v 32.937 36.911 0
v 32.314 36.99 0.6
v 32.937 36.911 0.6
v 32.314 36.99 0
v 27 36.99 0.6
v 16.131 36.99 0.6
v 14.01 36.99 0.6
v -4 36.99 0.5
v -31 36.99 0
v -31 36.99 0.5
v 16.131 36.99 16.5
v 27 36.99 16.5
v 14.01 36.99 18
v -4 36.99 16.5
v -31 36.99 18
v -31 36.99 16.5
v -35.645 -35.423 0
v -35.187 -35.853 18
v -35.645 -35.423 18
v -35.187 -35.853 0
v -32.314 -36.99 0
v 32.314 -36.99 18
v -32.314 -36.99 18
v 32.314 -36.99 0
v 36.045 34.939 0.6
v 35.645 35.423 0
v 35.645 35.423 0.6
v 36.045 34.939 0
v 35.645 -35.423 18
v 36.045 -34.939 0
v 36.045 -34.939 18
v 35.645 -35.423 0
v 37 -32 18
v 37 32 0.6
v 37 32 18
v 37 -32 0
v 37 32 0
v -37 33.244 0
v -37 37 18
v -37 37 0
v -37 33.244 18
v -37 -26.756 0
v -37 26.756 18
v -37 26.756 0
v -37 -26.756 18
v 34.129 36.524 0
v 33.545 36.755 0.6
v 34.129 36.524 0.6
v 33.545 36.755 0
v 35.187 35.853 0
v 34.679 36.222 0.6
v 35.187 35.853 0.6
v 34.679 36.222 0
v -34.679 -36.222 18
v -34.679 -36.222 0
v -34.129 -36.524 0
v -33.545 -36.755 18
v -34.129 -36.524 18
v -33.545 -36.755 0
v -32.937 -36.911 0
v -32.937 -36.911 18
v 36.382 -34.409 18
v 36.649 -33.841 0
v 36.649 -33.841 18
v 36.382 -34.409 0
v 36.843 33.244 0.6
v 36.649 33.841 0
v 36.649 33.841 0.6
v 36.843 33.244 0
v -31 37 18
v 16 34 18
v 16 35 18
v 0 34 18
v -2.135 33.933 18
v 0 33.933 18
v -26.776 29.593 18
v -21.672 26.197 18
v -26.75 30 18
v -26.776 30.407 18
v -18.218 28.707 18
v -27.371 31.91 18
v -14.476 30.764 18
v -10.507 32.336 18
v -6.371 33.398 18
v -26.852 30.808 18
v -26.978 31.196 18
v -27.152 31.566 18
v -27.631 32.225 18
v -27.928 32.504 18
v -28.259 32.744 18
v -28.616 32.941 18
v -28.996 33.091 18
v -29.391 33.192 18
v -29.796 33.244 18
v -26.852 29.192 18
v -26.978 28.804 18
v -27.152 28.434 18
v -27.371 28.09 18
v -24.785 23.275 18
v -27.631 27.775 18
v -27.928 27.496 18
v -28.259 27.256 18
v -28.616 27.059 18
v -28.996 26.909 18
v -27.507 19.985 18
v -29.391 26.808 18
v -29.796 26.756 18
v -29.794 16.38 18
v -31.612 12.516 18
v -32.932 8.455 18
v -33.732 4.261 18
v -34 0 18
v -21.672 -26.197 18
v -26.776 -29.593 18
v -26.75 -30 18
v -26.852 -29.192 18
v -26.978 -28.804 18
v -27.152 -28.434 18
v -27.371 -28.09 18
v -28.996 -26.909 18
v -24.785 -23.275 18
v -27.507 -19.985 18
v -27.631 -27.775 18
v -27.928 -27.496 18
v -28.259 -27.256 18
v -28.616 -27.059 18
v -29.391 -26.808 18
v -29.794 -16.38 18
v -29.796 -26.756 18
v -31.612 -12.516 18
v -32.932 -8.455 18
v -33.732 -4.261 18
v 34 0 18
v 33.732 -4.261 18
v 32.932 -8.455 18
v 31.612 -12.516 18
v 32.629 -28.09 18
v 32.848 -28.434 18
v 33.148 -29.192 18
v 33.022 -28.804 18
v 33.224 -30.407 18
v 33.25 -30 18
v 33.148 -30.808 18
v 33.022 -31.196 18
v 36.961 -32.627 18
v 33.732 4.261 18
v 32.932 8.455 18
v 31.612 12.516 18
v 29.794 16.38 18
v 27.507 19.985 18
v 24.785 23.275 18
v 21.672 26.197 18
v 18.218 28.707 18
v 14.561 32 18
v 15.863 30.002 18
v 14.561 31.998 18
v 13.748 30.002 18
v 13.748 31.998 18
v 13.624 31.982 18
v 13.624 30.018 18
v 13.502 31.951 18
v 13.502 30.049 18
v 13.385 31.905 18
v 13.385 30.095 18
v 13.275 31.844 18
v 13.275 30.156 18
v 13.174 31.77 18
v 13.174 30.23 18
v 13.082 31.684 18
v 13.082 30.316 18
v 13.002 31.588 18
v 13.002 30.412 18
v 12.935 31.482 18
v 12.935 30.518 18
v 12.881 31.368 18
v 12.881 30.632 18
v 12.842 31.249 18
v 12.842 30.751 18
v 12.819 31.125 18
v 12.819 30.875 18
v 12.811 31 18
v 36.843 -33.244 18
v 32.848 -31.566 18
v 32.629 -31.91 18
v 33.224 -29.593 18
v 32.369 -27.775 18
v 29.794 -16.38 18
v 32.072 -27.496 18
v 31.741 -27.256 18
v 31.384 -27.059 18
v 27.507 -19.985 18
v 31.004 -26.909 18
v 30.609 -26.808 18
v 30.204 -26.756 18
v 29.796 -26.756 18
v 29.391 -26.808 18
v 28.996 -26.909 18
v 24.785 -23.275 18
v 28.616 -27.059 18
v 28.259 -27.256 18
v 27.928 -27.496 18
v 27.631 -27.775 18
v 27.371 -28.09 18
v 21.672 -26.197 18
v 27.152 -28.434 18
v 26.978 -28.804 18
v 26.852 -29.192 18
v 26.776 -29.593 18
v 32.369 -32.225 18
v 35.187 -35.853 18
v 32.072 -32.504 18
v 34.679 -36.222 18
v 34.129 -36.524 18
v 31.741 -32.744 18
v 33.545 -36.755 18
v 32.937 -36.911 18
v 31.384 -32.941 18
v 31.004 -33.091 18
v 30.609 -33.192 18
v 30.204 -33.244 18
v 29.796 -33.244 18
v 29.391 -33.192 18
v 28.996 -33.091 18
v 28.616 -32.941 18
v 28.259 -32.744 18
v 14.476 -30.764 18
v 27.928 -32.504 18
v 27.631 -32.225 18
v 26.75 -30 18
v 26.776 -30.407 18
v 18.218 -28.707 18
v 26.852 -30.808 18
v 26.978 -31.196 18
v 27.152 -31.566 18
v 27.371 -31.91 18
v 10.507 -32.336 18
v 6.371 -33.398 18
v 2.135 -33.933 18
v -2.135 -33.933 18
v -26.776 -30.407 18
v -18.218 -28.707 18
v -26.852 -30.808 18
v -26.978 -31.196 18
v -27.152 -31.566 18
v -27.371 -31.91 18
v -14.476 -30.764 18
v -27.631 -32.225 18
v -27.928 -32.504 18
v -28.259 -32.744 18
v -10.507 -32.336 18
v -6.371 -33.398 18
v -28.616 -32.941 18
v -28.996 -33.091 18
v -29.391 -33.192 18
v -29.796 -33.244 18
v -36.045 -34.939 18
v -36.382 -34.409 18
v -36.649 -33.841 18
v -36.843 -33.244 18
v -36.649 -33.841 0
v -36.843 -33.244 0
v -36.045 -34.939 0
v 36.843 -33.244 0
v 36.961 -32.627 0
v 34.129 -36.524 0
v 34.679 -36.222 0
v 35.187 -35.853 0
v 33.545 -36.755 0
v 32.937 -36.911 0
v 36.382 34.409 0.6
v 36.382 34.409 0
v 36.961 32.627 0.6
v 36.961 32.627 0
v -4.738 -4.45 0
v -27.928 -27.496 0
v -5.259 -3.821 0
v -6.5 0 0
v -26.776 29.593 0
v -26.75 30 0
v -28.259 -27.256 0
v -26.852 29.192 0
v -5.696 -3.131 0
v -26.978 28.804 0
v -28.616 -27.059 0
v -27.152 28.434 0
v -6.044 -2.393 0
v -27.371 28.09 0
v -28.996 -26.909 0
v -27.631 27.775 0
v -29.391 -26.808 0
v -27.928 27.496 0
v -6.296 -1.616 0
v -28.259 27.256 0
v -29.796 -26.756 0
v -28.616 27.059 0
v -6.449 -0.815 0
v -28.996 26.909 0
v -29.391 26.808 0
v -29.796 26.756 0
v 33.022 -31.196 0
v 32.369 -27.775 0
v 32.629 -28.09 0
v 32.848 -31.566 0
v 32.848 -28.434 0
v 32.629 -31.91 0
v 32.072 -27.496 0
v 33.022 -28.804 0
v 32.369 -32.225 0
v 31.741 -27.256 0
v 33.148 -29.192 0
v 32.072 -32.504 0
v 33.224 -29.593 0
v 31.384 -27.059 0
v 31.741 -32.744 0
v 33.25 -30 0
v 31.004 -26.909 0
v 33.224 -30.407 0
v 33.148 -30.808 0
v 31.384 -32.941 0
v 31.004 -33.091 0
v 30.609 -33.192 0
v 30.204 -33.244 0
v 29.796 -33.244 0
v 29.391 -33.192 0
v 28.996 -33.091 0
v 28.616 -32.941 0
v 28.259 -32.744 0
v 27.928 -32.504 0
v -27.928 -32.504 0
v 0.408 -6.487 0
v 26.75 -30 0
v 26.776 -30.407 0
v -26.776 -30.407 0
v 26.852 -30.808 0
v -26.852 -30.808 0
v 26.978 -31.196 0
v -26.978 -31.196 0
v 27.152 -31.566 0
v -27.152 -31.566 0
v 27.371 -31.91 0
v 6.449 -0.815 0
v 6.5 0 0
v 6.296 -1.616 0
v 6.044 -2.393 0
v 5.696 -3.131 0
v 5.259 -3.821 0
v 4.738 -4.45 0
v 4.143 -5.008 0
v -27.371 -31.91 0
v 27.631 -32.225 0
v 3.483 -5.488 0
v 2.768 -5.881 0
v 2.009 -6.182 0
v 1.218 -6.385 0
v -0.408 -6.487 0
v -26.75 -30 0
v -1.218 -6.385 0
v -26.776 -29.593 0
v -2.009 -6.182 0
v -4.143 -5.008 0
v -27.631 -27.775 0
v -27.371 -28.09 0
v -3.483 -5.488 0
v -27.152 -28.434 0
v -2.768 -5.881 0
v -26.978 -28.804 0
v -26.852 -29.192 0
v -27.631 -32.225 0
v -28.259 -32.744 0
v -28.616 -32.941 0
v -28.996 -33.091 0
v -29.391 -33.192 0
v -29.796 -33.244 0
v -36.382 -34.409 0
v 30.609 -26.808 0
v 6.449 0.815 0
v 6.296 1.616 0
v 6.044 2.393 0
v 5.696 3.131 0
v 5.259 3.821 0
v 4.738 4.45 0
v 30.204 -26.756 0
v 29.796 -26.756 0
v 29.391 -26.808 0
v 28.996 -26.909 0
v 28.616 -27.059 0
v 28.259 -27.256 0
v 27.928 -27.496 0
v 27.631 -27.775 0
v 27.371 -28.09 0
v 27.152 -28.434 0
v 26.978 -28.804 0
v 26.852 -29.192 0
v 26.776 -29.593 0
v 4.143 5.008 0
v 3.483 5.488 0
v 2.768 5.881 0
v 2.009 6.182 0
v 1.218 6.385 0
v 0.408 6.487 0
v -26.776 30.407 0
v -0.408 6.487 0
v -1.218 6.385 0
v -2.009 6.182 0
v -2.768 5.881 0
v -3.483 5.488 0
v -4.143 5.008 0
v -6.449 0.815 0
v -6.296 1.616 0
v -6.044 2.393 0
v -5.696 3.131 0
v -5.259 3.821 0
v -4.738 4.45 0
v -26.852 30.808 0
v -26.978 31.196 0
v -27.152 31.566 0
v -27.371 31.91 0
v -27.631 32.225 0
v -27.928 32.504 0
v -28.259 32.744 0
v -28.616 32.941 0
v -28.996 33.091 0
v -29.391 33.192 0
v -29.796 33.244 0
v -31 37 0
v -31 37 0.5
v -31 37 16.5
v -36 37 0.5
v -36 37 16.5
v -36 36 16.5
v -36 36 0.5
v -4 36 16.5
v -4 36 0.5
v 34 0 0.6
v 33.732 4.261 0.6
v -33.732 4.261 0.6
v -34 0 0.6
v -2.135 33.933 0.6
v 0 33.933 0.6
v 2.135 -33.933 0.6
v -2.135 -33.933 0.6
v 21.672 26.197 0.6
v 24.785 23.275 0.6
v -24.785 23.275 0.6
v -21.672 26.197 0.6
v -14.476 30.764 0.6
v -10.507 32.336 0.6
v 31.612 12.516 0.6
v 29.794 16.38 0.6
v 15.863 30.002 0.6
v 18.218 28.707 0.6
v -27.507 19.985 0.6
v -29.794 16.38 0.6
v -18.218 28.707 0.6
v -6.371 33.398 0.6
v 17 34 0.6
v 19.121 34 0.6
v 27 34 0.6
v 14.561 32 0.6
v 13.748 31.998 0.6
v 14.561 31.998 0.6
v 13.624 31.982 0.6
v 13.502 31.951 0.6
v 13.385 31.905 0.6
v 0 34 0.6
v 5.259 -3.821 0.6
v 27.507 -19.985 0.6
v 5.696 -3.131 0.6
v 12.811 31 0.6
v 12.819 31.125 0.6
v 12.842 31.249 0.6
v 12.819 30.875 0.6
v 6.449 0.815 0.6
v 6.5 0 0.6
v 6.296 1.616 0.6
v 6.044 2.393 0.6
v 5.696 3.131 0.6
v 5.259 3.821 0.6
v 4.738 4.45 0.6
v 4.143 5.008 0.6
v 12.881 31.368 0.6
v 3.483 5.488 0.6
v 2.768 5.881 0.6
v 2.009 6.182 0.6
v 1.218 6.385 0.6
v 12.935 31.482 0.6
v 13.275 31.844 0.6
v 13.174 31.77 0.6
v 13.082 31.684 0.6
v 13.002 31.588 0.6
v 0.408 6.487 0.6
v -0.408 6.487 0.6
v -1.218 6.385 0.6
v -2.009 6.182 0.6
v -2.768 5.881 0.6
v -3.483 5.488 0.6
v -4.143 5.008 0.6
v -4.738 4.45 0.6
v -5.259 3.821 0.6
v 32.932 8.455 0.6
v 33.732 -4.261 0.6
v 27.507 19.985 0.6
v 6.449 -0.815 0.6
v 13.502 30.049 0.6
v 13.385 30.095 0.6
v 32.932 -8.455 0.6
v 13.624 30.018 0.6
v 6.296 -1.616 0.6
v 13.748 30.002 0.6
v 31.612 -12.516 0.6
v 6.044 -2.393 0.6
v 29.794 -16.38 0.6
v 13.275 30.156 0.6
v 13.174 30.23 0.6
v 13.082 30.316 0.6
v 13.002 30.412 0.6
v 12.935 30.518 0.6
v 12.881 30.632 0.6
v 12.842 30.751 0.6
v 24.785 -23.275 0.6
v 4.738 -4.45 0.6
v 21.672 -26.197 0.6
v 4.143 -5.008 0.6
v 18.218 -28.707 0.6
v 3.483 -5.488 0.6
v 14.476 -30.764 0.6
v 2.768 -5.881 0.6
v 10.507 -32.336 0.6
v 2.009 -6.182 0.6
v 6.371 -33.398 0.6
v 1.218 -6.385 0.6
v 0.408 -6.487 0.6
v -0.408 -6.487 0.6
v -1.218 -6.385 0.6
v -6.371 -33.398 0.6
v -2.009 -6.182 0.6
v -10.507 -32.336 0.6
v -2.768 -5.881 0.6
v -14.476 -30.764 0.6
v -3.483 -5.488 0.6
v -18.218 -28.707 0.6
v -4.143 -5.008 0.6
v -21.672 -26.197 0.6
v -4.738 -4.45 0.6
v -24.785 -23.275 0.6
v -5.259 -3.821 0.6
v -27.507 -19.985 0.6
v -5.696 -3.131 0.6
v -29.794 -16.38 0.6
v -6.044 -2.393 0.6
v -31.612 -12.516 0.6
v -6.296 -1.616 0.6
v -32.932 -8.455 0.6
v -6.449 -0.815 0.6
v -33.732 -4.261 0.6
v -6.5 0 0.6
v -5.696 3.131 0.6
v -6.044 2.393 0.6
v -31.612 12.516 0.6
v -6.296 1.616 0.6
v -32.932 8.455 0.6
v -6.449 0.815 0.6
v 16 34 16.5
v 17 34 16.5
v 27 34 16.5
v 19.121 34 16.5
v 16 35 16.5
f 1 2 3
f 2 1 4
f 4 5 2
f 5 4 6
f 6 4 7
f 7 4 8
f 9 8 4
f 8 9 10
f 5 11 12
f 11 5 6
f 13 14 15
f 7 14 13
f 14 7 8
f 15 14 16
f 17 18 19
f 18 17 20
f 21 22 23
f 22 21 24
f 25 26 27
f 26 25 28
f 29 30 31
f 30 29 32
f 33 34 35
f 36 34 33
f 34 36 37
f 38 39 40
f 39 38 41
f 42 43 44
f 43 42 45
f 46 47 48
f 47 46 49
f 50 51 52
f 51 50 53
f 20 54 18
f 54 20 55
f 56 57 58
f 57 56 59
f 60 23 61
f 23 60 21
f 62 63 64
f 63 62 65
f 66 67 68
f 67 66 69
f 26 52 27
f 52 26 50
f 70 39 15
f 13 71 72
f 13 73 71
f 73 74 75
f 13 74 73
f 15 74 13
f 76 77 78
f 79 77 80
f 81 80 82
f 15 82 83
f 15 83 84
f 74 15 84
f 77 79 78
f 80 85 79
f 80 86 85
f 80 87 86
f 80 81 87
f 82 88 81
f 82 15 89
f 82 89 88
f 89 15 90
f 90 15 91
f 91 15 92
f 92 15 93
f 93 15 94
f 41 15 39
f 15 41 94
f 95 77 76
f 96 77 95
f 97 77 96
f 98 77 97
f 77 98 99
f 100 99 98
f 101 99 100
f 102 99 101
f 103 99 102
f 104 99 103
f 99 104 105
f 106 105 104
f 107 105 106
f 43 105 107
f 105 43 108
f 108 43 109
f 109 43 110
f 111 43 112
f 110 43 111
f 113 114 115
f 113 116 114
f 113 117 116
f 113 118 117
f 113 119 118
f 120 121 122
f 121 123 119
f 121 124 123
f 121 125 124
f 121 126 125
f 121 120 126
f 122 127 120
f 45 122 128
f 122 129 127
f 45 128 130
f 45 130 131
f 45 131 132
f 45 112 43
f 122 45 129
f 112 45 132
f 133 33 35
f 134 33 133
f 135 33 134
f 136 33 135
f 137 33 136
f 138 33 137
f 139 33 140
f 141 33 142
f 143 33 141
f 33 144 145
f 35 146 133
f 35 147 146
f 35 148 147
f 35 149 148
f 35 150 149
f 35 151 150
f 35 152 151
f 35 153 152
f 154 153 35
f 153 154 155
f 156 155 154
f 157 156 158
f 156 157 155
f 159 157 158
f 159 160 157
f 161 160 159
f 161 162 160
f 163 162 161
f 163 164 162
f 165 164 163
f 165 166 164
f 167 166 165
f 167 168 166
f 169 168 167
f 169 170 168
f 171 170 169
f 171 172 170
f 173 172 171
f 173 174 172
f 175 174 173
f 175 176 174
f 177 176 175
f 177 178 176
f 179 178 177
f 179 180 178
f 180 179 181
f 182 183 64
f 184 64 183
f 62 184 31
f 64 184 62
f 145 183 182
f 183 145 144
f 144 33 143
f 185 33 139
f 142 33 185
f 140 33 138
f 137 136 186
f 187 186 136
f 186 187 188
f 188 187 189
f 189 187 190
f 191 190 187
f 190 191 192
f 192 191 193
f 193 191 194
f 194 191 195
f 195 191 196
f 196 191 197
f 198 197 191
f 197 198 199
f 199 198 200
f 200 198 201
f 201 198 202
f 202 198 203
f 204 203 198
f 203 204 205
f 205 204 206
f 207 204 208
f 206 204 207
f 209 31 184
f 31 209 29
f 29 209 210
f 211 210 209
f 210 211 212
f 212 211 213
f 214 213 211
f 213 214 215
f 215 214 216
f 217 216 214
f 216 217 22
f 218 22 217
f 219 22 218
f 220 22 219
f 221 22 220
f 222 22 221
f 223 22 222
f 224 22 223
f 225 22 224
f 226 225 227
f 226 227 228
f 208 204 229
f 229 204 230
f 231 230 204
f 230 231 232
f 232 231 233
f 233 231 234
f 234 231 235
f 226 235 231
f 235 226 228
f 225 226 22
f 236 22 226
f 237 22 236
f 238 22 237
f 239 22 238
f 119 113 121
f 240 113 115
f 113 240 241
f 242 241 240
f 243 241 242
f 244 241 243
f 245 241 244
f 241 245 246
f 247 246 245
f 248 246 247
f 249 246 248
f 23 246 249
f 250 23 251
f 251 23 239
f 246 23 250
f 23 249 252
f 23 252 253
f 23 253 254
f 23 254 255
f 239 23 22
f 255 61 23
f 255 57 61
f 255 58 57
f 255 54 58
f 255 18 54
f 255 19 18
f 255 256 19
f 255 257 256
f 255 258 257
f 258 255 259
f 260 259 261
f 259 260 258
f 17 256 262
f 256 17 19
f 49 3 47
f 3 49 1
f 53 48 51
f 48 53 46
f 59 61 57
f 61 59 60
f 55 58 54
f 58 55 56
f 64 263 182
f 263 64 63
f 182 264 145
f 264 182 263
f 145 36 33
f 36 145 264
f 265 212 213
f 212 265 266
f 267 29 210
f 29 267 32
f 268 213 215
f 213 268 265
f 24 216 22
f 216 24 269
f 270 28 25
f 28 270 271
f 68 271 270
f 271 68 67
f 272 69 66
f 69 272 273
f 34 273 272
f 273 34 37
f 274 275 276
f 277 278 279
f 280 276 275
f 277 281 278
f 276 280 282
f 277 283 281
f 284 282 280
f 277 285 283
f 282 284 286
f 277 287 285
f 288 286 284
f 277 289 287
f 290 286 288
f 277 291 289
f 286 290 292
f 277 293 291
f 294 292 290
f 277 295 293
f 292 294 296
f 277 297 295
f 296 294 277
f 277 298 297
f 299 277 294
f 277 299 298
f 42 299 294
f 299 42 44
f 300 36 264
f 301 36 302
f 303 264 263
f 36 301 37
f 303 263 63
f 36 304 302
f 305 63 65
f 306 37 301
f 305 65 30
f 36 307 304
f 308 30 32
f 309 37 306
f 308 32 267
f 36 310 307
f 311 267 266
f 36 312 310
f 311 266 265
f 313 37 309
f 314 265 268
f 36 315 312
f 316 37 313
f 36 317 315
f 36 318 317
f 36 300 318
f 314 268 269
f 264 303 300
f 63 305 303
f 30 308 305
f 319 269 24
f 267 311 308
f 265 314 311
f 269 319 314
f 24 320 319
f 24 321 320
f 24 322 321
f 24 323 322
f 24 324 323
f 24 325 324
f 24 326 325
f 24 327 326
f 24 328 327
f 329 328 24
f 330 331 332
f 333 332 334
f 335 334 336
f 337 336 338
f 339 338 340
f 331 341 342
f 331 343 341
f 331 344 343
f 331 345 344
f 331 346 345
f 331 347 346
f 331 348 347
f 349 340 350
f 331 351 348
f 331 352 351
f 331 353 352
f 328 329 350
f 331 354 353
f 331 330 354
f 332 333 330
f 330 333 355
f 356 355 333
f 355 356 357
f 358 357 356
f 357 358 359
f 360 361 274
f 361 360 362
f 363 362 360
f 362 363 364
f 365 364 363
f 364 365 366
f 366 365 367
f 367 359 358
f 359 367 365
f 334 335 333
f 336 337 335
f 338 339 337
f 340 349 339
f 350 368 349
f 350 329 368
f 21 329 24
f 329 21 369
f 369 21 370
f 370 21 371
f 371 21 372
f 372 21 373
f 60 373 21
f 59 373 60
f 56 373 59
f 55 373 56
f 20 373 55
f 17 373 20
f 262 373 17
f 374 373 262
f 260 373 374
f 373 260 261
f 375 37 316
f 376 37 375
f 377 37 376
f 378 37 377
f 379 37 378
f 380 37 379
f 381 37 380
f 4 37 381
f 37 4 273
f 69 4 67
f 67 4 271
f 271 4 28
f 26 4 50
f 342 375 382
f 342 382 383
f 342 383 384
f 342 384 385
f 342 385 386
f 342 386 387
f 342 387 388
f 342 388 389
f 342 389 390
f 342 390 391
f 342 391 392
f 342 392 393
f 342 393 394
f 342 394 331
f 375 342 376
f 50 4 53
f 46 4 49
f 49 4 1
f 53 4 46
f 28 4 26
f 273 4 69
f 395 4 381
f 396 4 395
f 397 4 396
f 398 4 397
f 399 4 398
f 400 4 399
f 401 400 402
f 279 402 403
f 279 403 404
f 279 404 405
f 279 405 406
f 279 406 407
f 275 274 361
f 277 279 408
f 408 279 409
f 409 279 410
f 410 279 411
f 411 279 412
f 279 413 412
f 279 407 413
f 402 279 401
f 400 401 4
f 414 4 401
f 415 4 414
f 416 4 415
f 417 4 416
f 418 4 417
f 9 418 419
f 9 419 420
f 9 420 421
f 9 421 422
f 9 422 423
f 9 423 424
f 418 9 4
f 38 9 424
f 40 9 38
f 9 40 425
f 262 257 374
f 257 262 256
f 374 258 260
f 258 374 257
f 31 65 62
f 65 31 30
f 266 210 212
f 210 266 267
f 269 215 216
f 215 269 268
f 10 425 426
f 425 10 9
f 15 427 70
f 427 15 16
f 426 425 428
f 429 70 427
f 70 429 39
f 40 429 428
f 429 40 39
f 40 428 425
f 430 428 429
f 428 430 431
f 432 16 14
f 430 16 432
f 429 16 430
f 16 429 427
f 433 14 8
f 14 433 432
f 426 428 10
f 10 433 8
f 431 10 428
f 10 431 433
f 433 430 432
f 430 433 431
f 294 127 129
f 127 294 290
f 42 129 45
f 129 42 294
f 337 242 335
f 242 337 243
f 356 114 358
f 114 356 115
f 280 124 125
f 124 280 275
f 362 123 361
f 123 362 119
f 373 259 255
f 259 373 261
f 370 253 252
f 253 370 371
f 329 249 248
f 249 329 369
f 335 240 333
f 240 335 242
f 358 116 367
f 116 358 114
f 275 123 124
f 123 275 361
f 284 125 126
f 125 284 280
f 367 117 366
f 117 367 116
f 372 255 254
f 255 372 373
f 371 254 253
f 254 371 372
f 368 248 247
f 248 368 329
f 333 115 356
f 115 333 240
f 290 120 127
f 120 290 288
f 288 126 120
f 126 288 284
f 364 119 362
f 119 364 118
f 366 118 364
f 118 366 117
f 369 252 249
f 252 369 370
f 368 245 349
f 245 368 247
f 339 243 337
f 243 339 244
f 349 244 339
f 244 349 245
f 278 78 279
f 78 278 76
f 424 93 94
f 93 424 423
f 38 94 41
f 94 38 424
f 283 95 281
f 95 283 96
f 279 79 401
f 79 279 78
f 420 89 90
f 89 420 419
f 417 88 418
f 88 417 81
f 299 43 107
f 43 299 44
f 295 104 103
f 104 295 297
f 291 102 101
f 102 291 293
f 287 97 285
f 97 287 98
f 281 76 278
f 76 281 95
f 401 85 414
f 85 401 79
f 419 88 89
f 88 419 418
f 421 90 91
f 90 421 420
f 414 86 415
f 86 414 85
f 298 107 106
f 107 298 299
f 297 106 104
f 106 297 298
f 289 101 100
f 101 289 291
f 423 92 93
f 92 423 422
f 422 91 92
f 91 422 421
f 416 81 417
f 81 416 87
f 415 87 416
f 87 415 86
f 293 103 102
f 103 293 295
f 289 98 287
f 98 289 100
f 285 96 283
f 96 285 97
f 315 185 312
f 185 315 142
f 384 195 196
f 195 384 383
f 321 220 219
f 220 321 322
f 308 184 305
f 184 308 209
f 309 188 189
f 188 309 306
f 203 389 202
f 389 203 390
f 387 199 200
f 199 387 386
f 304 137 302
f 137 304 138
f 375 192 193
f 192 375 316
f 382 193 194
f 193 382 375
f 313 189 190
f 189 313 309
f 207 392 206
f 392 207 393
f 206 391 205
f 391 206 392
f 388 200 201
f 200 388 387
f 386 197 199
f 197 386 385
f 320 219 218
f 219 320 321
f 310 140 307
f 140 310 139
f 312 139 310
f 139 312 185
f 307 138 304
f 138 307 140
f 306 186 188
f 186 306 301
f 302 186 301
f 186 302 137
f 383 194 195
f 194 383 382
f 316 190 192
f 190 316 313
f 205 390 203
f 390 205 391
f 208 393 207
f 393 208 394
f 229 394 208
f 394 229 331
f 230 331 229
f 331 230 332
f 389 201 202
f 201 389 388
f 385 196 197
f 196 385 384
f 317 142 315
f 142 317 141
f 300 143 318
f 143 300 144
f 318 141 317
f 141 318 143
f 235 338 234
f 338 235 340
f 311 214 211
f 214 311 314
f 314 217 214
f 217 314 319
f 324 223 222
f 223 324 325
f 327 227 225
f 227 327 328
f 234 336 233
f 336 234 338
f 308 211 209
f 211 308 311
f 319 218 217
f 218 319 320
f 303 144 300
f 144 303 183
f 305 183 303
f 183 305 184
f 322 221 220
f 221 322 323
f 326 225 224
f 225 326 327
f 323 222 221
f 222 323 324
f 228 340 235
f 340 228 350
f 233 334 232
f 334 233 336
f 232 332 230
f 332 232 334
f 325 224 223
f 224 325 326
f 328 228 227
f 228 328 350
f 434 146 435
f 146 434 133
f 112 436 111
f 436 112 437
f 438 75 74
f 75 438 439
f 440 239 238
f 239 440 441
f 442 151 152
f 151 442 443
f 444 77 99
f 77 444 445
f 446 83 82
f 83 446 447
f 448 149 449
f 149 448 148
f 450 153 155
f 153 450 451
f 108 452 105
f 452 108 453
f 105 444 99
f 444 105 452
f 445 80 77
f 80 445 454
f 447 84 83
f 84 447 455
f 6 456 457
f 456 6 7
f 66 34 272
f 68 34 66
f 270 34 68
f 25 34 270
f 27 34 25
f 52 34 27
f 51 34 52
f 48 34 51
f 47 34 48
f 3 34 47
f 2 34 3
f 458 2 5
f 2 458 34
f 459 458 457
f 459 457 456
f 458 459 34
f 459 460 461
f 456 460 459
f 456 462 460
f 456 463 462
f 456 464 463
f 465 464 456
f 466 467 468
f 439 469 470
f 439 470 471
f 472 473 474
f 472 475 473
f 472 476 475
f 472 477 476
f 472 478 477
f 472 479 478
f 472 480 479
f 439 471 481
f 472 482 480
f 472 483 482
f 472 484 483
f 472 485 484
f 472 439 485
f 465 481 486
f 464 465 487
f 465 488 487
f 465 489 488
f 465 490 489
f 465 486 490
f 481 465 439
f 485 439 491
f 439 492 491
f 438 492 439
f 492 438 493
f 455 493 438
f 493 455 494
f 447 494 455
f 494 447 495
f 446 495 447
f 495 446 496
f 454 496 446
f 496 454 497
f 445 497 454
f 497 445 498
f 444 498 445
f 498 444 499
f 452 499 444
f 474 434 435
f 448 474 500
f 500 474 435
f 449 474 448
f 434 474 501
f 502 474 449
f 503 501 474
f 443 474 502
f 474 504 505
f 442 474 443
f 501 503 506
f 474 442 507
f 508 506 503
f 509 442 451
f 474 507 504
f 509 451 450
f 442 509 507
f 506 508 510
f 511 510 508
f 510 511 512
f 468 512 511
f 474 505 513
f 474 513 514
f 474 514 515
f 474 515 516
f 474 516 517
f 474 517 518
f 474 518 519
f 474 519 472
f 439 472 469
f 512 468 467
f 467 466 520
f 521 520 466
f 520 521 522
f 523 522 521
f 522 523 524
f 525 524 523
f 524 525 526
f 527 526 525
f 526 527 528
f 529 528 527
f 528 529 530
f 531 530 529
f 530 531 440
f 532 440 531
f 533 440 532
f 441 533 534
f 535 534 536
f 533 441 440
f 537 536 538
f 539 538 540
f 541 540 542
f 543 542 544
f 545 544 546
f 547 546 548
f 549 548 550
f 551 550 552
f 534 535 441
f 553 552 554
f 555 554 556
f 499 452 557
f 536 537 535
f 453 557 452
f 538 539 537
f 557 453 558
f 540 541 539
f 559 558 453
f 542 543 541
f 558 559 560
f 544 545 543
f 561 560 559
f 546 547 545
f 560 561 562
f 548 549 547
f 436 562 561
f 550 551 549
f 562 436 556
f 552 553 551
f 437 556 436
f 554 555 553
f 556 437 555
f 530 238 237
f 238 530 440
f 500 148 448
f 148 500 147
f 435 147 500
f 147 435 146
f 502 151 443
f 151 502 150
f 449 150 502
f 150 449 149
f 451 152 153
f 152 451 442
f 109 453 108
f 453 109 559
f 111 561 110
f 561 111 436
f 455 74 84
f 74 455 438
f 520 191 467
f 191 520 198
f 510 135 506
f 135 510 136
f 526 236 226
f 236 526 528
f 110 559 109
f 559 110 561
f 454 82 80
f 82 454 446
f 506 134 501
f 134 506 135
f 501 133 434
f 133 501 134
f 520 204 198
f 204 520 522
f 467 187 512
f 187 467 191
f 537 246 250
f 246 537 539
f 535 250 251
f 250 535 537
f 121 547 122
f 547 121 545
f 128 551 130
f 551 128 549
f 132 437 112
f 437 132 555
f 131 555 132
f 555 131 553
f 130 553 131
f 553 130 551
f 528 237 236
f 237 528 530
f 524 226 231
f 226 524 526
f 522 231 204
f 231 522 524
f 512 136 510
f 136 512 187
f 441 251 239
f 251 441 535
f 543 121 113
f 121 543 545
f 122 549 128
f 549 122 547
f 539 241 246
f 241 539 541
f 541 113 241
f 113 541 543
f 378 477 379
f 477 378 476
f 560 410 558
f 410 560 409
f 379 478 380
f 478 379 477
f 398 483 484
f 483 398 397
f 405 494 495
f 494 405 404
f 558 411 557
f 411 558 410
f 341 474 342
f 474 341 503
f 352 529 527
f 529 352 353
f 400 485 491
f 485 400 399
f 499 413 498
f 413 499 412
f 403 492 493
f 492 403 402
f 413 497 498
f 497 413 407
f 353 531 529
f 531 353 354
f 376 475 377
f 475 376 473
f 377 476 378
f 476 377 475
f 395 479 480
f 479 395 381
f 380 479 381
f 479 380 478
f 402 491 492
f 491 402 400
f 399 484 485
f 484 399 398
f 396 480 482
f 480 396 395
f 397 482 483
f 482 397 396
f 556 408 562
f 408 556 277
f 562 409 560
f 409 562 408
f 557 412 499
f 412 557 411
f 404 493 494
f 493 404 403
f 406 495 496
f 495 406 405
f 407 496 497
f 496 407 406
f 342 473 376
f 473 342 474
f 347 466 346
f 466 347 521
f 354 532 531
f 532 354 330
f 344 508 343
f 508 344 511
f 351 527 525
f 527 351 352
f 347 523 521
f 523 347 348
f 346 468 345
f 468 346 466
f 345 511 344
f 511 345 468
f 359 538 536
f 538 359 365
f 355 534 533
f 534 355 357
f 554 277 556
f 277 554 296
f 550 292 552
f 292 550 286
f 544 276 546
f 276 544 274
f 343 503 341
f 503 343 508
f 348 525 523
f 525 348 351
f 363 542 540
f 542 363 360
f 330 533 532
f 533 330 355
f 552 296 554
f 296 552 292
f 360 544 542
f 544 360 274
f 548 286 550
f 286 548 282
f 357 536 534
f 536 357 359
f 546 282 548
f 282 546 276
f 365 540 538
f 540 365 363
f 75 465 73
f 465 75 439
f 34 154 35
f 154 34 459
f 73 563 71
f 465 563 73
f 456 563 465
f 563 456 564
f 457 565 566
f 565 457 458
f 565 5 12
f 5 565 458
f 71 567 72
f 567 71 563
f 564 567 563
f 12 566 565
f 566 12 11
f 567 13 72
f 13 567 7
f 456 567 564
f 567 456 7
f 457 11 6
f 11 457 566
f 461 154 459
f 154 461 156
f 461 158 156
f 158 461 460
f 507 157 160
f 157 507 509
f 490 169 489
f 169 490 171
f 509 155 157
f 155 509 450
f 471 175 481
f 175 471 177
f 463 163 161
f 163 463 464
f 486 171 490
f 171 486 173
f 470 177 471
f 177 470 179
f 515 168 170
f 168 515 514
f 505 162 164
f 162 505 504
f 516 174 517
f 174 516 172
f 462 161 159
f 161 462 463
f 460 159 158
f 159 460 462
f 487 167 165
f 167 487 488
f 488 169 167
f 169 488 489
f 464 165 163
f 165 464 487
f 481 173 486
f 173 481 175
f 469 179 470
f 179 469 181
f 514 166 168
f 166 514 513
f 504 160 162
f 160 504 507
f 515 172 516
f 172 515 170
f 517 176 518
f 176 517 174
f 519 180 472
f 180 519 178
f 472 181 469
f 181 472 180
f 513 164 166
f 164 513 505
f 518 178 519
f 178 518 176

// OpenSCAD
$fn = 50;


union() {
	difference() {
		union() {
			translate(v = [0, 0, 0]) {
				rotate(a = [0, 0, 0]) {
					hull() {
						translate(v = [-32.0000000000, 32.0000000000, 0]) {
							rotate(a = [0, 0, 0]) {
								translate(v = [0, 0, 0]) {
									rotate(a = [0, 0, 0]) {
										cylinder(h = 18, r = 5);
									}
								}
							}
						}
						translate(v = [32.0000000000, 32.0000000000, 0]) {
							rotate(a = [0, 0, 0]) {
								translate(v = [0, 0, 0]) {
									rotate(a = [0, 0, 0]) {
										cylinder(h = 18, r = 5);
									}
								}
							}
						}
						translate(v = [-32.0000000000, -32.0000000000, 0]) {
							rotate(a = [0, 0, 0]) {
								translate(v = [0, 0, 0]) {
									rotate(a = [0, 0, 0]) {
										cylinder(h = 18, r = 5);
									}
								}
							}
						}
						translate(v = [32.0000000000, -32.0000000000, 0]) {
							rotate(a = [0, 0, 0]) {
								translate(v = [0, 0, 0]) {
									rotate(a = [0, 0, 0]) {
										cylinder(h = 18, r = 5);
									}
								}
							}
						}
					}
				}
			}
			translate(v = [-37.0000000000, 31.0000000000, 0]) {
				rotate(a = [0, 0, 0]) {
					cube(size = [6, 6, 18]);
				}
			}
		}
		union() {
			#translate(v = [-36.0000000000, 36.0000000000, 0.5000000000]) {
				rotate(a = [0, 0, 0]) {
					cube(size = [32, 1, 16]);
				}
			}
			translate(v = [-37.5000000000, -30.0000000000, -125]) {
				rotate(a = [0, 0, 0]) {
					hull() {
						translate(v = [7.5000000000, 0, 0]) {
							rotate(a = [0, 0, 0]) {
								translate(v = [0, 0, 0]) {
									rotate(a = [0, 0, 0]) {
										cylinder(h = 250, r = 3.2500000000);
									}
								}
							}
						}
						translate(v = [-7.5000000000, 0, 0]) {
							rotate(a = [0, 0, 0]) {
								translate(v = [0, 0, 0]) {
									rotate(a = [0, 0, 0]) {
										cylinder(h = 250, r = 3.2500000000);
									}
								}
							}
						}
					}
				}
			}
			translate(v = [-37.5000000000, 30.0000000000, -125]) {
				rotate(a = [0, 0, 0]) {
					hull() {
						translate(v = [7.5000000000, 0, 0]) {
							rotate(a = [0, 0, 0]) {
								translate(v = [0, 0, 0]) {
									rotate(a = [0, 0, 0]) {
										cylinder(h = 250, r = 3.2500000000);
									}
								}
							}
						}
						translate(v = [-7.5000000000, 0, 0]) {
							rotate(a = [0, 0, 0]) {
								translate(v = [0, 0, 0]) {
									rotate(a = [0, 0, 0]) {
										cylinder(h = 250, r = 3.2500000000);
									}
								}
							}
						}
					}
				}
			}
			translate(v = [30.0000000000, -30.0000000000, -125.0000000000]) {
				rotate(a = [0, 0, 0]) {
					cylinder(h = 250, r = 3.2500000000);
				}
			}
			translate(v = [0, 0, 0.6000000000]) {
				rotate(a = [0, 0, 0]) {
					cylinder(h = 20.4000000000, r = 34.0000000000);
				}
			}
			translate(v = [0, 0, -9.0000000000]) {
				rotate(a = [0, 0, 0]) {
					cylinder(h = 18, r = 6.5000000000);
				}
			}
			translate(v = [0.0000000000, 32.0000000000, 0.6000000000]) {
				rotate(a = [0, 0, 0]) {
					cube(size = [37.0000000000, 2, 20.4000000000]);
				}
			}
			translate(v = [27.0000000000, 32.0000000000, 0.6000000000]) {
				rotate(a = [0, 0, 0]) {
					cube(size = [10, 5, 20.4000000000]);
				}
			}
			translate(v = [16.0000000000, 32.0000000000, 16.5000000000]) {
				rotate(a = [0, 0, 0]) {
					cube(size = [21, 5, 1.5000000000]);
				}
			}
			translate(v = [13.2500000000, 37.7500000000, 0.6000000000]) {
				rotate(a = [0, 0, -45]) {
					cube(size = [7.5000000000, 1.5000000000, 20.4000000000]);
				}
			}
			translate(v = [7.0610000000, 30.0000000000, 0.6000000000]) {
				rotate(a = [0, 0, 0]) {
					cube(size = [7.5000000000, 2, 17.4000000000]);
				}
			}
		}
	}
	union() {
		translate(v = [16.3110000000, 31.0000000000, 0]) {
			rotate(a = [0, 0, 0]) {
				hull() {
					translate(v = [2.5000000000, 0, 0]) {
						rotate(a = [0, 0, 0]) {
							#translate(v = [0, 0, 0]) {
								rotate(a = [0, 0, 0]) {
									cylinder(h = 18, r = 1.0000000000);
								}
							}
						}
					}
					translate(v = [-2.5000000000, 0, 0]) {
						rotate(a = [0, 0, 0]) {
							#translate(v = [0, 0, 0]) {
								rotate(a = [0, 0, 0]) {
									cylinder(h = 18, r = 1.0000000000);
								}
							}
						}
					}
				}
			}
		}
	}
}
